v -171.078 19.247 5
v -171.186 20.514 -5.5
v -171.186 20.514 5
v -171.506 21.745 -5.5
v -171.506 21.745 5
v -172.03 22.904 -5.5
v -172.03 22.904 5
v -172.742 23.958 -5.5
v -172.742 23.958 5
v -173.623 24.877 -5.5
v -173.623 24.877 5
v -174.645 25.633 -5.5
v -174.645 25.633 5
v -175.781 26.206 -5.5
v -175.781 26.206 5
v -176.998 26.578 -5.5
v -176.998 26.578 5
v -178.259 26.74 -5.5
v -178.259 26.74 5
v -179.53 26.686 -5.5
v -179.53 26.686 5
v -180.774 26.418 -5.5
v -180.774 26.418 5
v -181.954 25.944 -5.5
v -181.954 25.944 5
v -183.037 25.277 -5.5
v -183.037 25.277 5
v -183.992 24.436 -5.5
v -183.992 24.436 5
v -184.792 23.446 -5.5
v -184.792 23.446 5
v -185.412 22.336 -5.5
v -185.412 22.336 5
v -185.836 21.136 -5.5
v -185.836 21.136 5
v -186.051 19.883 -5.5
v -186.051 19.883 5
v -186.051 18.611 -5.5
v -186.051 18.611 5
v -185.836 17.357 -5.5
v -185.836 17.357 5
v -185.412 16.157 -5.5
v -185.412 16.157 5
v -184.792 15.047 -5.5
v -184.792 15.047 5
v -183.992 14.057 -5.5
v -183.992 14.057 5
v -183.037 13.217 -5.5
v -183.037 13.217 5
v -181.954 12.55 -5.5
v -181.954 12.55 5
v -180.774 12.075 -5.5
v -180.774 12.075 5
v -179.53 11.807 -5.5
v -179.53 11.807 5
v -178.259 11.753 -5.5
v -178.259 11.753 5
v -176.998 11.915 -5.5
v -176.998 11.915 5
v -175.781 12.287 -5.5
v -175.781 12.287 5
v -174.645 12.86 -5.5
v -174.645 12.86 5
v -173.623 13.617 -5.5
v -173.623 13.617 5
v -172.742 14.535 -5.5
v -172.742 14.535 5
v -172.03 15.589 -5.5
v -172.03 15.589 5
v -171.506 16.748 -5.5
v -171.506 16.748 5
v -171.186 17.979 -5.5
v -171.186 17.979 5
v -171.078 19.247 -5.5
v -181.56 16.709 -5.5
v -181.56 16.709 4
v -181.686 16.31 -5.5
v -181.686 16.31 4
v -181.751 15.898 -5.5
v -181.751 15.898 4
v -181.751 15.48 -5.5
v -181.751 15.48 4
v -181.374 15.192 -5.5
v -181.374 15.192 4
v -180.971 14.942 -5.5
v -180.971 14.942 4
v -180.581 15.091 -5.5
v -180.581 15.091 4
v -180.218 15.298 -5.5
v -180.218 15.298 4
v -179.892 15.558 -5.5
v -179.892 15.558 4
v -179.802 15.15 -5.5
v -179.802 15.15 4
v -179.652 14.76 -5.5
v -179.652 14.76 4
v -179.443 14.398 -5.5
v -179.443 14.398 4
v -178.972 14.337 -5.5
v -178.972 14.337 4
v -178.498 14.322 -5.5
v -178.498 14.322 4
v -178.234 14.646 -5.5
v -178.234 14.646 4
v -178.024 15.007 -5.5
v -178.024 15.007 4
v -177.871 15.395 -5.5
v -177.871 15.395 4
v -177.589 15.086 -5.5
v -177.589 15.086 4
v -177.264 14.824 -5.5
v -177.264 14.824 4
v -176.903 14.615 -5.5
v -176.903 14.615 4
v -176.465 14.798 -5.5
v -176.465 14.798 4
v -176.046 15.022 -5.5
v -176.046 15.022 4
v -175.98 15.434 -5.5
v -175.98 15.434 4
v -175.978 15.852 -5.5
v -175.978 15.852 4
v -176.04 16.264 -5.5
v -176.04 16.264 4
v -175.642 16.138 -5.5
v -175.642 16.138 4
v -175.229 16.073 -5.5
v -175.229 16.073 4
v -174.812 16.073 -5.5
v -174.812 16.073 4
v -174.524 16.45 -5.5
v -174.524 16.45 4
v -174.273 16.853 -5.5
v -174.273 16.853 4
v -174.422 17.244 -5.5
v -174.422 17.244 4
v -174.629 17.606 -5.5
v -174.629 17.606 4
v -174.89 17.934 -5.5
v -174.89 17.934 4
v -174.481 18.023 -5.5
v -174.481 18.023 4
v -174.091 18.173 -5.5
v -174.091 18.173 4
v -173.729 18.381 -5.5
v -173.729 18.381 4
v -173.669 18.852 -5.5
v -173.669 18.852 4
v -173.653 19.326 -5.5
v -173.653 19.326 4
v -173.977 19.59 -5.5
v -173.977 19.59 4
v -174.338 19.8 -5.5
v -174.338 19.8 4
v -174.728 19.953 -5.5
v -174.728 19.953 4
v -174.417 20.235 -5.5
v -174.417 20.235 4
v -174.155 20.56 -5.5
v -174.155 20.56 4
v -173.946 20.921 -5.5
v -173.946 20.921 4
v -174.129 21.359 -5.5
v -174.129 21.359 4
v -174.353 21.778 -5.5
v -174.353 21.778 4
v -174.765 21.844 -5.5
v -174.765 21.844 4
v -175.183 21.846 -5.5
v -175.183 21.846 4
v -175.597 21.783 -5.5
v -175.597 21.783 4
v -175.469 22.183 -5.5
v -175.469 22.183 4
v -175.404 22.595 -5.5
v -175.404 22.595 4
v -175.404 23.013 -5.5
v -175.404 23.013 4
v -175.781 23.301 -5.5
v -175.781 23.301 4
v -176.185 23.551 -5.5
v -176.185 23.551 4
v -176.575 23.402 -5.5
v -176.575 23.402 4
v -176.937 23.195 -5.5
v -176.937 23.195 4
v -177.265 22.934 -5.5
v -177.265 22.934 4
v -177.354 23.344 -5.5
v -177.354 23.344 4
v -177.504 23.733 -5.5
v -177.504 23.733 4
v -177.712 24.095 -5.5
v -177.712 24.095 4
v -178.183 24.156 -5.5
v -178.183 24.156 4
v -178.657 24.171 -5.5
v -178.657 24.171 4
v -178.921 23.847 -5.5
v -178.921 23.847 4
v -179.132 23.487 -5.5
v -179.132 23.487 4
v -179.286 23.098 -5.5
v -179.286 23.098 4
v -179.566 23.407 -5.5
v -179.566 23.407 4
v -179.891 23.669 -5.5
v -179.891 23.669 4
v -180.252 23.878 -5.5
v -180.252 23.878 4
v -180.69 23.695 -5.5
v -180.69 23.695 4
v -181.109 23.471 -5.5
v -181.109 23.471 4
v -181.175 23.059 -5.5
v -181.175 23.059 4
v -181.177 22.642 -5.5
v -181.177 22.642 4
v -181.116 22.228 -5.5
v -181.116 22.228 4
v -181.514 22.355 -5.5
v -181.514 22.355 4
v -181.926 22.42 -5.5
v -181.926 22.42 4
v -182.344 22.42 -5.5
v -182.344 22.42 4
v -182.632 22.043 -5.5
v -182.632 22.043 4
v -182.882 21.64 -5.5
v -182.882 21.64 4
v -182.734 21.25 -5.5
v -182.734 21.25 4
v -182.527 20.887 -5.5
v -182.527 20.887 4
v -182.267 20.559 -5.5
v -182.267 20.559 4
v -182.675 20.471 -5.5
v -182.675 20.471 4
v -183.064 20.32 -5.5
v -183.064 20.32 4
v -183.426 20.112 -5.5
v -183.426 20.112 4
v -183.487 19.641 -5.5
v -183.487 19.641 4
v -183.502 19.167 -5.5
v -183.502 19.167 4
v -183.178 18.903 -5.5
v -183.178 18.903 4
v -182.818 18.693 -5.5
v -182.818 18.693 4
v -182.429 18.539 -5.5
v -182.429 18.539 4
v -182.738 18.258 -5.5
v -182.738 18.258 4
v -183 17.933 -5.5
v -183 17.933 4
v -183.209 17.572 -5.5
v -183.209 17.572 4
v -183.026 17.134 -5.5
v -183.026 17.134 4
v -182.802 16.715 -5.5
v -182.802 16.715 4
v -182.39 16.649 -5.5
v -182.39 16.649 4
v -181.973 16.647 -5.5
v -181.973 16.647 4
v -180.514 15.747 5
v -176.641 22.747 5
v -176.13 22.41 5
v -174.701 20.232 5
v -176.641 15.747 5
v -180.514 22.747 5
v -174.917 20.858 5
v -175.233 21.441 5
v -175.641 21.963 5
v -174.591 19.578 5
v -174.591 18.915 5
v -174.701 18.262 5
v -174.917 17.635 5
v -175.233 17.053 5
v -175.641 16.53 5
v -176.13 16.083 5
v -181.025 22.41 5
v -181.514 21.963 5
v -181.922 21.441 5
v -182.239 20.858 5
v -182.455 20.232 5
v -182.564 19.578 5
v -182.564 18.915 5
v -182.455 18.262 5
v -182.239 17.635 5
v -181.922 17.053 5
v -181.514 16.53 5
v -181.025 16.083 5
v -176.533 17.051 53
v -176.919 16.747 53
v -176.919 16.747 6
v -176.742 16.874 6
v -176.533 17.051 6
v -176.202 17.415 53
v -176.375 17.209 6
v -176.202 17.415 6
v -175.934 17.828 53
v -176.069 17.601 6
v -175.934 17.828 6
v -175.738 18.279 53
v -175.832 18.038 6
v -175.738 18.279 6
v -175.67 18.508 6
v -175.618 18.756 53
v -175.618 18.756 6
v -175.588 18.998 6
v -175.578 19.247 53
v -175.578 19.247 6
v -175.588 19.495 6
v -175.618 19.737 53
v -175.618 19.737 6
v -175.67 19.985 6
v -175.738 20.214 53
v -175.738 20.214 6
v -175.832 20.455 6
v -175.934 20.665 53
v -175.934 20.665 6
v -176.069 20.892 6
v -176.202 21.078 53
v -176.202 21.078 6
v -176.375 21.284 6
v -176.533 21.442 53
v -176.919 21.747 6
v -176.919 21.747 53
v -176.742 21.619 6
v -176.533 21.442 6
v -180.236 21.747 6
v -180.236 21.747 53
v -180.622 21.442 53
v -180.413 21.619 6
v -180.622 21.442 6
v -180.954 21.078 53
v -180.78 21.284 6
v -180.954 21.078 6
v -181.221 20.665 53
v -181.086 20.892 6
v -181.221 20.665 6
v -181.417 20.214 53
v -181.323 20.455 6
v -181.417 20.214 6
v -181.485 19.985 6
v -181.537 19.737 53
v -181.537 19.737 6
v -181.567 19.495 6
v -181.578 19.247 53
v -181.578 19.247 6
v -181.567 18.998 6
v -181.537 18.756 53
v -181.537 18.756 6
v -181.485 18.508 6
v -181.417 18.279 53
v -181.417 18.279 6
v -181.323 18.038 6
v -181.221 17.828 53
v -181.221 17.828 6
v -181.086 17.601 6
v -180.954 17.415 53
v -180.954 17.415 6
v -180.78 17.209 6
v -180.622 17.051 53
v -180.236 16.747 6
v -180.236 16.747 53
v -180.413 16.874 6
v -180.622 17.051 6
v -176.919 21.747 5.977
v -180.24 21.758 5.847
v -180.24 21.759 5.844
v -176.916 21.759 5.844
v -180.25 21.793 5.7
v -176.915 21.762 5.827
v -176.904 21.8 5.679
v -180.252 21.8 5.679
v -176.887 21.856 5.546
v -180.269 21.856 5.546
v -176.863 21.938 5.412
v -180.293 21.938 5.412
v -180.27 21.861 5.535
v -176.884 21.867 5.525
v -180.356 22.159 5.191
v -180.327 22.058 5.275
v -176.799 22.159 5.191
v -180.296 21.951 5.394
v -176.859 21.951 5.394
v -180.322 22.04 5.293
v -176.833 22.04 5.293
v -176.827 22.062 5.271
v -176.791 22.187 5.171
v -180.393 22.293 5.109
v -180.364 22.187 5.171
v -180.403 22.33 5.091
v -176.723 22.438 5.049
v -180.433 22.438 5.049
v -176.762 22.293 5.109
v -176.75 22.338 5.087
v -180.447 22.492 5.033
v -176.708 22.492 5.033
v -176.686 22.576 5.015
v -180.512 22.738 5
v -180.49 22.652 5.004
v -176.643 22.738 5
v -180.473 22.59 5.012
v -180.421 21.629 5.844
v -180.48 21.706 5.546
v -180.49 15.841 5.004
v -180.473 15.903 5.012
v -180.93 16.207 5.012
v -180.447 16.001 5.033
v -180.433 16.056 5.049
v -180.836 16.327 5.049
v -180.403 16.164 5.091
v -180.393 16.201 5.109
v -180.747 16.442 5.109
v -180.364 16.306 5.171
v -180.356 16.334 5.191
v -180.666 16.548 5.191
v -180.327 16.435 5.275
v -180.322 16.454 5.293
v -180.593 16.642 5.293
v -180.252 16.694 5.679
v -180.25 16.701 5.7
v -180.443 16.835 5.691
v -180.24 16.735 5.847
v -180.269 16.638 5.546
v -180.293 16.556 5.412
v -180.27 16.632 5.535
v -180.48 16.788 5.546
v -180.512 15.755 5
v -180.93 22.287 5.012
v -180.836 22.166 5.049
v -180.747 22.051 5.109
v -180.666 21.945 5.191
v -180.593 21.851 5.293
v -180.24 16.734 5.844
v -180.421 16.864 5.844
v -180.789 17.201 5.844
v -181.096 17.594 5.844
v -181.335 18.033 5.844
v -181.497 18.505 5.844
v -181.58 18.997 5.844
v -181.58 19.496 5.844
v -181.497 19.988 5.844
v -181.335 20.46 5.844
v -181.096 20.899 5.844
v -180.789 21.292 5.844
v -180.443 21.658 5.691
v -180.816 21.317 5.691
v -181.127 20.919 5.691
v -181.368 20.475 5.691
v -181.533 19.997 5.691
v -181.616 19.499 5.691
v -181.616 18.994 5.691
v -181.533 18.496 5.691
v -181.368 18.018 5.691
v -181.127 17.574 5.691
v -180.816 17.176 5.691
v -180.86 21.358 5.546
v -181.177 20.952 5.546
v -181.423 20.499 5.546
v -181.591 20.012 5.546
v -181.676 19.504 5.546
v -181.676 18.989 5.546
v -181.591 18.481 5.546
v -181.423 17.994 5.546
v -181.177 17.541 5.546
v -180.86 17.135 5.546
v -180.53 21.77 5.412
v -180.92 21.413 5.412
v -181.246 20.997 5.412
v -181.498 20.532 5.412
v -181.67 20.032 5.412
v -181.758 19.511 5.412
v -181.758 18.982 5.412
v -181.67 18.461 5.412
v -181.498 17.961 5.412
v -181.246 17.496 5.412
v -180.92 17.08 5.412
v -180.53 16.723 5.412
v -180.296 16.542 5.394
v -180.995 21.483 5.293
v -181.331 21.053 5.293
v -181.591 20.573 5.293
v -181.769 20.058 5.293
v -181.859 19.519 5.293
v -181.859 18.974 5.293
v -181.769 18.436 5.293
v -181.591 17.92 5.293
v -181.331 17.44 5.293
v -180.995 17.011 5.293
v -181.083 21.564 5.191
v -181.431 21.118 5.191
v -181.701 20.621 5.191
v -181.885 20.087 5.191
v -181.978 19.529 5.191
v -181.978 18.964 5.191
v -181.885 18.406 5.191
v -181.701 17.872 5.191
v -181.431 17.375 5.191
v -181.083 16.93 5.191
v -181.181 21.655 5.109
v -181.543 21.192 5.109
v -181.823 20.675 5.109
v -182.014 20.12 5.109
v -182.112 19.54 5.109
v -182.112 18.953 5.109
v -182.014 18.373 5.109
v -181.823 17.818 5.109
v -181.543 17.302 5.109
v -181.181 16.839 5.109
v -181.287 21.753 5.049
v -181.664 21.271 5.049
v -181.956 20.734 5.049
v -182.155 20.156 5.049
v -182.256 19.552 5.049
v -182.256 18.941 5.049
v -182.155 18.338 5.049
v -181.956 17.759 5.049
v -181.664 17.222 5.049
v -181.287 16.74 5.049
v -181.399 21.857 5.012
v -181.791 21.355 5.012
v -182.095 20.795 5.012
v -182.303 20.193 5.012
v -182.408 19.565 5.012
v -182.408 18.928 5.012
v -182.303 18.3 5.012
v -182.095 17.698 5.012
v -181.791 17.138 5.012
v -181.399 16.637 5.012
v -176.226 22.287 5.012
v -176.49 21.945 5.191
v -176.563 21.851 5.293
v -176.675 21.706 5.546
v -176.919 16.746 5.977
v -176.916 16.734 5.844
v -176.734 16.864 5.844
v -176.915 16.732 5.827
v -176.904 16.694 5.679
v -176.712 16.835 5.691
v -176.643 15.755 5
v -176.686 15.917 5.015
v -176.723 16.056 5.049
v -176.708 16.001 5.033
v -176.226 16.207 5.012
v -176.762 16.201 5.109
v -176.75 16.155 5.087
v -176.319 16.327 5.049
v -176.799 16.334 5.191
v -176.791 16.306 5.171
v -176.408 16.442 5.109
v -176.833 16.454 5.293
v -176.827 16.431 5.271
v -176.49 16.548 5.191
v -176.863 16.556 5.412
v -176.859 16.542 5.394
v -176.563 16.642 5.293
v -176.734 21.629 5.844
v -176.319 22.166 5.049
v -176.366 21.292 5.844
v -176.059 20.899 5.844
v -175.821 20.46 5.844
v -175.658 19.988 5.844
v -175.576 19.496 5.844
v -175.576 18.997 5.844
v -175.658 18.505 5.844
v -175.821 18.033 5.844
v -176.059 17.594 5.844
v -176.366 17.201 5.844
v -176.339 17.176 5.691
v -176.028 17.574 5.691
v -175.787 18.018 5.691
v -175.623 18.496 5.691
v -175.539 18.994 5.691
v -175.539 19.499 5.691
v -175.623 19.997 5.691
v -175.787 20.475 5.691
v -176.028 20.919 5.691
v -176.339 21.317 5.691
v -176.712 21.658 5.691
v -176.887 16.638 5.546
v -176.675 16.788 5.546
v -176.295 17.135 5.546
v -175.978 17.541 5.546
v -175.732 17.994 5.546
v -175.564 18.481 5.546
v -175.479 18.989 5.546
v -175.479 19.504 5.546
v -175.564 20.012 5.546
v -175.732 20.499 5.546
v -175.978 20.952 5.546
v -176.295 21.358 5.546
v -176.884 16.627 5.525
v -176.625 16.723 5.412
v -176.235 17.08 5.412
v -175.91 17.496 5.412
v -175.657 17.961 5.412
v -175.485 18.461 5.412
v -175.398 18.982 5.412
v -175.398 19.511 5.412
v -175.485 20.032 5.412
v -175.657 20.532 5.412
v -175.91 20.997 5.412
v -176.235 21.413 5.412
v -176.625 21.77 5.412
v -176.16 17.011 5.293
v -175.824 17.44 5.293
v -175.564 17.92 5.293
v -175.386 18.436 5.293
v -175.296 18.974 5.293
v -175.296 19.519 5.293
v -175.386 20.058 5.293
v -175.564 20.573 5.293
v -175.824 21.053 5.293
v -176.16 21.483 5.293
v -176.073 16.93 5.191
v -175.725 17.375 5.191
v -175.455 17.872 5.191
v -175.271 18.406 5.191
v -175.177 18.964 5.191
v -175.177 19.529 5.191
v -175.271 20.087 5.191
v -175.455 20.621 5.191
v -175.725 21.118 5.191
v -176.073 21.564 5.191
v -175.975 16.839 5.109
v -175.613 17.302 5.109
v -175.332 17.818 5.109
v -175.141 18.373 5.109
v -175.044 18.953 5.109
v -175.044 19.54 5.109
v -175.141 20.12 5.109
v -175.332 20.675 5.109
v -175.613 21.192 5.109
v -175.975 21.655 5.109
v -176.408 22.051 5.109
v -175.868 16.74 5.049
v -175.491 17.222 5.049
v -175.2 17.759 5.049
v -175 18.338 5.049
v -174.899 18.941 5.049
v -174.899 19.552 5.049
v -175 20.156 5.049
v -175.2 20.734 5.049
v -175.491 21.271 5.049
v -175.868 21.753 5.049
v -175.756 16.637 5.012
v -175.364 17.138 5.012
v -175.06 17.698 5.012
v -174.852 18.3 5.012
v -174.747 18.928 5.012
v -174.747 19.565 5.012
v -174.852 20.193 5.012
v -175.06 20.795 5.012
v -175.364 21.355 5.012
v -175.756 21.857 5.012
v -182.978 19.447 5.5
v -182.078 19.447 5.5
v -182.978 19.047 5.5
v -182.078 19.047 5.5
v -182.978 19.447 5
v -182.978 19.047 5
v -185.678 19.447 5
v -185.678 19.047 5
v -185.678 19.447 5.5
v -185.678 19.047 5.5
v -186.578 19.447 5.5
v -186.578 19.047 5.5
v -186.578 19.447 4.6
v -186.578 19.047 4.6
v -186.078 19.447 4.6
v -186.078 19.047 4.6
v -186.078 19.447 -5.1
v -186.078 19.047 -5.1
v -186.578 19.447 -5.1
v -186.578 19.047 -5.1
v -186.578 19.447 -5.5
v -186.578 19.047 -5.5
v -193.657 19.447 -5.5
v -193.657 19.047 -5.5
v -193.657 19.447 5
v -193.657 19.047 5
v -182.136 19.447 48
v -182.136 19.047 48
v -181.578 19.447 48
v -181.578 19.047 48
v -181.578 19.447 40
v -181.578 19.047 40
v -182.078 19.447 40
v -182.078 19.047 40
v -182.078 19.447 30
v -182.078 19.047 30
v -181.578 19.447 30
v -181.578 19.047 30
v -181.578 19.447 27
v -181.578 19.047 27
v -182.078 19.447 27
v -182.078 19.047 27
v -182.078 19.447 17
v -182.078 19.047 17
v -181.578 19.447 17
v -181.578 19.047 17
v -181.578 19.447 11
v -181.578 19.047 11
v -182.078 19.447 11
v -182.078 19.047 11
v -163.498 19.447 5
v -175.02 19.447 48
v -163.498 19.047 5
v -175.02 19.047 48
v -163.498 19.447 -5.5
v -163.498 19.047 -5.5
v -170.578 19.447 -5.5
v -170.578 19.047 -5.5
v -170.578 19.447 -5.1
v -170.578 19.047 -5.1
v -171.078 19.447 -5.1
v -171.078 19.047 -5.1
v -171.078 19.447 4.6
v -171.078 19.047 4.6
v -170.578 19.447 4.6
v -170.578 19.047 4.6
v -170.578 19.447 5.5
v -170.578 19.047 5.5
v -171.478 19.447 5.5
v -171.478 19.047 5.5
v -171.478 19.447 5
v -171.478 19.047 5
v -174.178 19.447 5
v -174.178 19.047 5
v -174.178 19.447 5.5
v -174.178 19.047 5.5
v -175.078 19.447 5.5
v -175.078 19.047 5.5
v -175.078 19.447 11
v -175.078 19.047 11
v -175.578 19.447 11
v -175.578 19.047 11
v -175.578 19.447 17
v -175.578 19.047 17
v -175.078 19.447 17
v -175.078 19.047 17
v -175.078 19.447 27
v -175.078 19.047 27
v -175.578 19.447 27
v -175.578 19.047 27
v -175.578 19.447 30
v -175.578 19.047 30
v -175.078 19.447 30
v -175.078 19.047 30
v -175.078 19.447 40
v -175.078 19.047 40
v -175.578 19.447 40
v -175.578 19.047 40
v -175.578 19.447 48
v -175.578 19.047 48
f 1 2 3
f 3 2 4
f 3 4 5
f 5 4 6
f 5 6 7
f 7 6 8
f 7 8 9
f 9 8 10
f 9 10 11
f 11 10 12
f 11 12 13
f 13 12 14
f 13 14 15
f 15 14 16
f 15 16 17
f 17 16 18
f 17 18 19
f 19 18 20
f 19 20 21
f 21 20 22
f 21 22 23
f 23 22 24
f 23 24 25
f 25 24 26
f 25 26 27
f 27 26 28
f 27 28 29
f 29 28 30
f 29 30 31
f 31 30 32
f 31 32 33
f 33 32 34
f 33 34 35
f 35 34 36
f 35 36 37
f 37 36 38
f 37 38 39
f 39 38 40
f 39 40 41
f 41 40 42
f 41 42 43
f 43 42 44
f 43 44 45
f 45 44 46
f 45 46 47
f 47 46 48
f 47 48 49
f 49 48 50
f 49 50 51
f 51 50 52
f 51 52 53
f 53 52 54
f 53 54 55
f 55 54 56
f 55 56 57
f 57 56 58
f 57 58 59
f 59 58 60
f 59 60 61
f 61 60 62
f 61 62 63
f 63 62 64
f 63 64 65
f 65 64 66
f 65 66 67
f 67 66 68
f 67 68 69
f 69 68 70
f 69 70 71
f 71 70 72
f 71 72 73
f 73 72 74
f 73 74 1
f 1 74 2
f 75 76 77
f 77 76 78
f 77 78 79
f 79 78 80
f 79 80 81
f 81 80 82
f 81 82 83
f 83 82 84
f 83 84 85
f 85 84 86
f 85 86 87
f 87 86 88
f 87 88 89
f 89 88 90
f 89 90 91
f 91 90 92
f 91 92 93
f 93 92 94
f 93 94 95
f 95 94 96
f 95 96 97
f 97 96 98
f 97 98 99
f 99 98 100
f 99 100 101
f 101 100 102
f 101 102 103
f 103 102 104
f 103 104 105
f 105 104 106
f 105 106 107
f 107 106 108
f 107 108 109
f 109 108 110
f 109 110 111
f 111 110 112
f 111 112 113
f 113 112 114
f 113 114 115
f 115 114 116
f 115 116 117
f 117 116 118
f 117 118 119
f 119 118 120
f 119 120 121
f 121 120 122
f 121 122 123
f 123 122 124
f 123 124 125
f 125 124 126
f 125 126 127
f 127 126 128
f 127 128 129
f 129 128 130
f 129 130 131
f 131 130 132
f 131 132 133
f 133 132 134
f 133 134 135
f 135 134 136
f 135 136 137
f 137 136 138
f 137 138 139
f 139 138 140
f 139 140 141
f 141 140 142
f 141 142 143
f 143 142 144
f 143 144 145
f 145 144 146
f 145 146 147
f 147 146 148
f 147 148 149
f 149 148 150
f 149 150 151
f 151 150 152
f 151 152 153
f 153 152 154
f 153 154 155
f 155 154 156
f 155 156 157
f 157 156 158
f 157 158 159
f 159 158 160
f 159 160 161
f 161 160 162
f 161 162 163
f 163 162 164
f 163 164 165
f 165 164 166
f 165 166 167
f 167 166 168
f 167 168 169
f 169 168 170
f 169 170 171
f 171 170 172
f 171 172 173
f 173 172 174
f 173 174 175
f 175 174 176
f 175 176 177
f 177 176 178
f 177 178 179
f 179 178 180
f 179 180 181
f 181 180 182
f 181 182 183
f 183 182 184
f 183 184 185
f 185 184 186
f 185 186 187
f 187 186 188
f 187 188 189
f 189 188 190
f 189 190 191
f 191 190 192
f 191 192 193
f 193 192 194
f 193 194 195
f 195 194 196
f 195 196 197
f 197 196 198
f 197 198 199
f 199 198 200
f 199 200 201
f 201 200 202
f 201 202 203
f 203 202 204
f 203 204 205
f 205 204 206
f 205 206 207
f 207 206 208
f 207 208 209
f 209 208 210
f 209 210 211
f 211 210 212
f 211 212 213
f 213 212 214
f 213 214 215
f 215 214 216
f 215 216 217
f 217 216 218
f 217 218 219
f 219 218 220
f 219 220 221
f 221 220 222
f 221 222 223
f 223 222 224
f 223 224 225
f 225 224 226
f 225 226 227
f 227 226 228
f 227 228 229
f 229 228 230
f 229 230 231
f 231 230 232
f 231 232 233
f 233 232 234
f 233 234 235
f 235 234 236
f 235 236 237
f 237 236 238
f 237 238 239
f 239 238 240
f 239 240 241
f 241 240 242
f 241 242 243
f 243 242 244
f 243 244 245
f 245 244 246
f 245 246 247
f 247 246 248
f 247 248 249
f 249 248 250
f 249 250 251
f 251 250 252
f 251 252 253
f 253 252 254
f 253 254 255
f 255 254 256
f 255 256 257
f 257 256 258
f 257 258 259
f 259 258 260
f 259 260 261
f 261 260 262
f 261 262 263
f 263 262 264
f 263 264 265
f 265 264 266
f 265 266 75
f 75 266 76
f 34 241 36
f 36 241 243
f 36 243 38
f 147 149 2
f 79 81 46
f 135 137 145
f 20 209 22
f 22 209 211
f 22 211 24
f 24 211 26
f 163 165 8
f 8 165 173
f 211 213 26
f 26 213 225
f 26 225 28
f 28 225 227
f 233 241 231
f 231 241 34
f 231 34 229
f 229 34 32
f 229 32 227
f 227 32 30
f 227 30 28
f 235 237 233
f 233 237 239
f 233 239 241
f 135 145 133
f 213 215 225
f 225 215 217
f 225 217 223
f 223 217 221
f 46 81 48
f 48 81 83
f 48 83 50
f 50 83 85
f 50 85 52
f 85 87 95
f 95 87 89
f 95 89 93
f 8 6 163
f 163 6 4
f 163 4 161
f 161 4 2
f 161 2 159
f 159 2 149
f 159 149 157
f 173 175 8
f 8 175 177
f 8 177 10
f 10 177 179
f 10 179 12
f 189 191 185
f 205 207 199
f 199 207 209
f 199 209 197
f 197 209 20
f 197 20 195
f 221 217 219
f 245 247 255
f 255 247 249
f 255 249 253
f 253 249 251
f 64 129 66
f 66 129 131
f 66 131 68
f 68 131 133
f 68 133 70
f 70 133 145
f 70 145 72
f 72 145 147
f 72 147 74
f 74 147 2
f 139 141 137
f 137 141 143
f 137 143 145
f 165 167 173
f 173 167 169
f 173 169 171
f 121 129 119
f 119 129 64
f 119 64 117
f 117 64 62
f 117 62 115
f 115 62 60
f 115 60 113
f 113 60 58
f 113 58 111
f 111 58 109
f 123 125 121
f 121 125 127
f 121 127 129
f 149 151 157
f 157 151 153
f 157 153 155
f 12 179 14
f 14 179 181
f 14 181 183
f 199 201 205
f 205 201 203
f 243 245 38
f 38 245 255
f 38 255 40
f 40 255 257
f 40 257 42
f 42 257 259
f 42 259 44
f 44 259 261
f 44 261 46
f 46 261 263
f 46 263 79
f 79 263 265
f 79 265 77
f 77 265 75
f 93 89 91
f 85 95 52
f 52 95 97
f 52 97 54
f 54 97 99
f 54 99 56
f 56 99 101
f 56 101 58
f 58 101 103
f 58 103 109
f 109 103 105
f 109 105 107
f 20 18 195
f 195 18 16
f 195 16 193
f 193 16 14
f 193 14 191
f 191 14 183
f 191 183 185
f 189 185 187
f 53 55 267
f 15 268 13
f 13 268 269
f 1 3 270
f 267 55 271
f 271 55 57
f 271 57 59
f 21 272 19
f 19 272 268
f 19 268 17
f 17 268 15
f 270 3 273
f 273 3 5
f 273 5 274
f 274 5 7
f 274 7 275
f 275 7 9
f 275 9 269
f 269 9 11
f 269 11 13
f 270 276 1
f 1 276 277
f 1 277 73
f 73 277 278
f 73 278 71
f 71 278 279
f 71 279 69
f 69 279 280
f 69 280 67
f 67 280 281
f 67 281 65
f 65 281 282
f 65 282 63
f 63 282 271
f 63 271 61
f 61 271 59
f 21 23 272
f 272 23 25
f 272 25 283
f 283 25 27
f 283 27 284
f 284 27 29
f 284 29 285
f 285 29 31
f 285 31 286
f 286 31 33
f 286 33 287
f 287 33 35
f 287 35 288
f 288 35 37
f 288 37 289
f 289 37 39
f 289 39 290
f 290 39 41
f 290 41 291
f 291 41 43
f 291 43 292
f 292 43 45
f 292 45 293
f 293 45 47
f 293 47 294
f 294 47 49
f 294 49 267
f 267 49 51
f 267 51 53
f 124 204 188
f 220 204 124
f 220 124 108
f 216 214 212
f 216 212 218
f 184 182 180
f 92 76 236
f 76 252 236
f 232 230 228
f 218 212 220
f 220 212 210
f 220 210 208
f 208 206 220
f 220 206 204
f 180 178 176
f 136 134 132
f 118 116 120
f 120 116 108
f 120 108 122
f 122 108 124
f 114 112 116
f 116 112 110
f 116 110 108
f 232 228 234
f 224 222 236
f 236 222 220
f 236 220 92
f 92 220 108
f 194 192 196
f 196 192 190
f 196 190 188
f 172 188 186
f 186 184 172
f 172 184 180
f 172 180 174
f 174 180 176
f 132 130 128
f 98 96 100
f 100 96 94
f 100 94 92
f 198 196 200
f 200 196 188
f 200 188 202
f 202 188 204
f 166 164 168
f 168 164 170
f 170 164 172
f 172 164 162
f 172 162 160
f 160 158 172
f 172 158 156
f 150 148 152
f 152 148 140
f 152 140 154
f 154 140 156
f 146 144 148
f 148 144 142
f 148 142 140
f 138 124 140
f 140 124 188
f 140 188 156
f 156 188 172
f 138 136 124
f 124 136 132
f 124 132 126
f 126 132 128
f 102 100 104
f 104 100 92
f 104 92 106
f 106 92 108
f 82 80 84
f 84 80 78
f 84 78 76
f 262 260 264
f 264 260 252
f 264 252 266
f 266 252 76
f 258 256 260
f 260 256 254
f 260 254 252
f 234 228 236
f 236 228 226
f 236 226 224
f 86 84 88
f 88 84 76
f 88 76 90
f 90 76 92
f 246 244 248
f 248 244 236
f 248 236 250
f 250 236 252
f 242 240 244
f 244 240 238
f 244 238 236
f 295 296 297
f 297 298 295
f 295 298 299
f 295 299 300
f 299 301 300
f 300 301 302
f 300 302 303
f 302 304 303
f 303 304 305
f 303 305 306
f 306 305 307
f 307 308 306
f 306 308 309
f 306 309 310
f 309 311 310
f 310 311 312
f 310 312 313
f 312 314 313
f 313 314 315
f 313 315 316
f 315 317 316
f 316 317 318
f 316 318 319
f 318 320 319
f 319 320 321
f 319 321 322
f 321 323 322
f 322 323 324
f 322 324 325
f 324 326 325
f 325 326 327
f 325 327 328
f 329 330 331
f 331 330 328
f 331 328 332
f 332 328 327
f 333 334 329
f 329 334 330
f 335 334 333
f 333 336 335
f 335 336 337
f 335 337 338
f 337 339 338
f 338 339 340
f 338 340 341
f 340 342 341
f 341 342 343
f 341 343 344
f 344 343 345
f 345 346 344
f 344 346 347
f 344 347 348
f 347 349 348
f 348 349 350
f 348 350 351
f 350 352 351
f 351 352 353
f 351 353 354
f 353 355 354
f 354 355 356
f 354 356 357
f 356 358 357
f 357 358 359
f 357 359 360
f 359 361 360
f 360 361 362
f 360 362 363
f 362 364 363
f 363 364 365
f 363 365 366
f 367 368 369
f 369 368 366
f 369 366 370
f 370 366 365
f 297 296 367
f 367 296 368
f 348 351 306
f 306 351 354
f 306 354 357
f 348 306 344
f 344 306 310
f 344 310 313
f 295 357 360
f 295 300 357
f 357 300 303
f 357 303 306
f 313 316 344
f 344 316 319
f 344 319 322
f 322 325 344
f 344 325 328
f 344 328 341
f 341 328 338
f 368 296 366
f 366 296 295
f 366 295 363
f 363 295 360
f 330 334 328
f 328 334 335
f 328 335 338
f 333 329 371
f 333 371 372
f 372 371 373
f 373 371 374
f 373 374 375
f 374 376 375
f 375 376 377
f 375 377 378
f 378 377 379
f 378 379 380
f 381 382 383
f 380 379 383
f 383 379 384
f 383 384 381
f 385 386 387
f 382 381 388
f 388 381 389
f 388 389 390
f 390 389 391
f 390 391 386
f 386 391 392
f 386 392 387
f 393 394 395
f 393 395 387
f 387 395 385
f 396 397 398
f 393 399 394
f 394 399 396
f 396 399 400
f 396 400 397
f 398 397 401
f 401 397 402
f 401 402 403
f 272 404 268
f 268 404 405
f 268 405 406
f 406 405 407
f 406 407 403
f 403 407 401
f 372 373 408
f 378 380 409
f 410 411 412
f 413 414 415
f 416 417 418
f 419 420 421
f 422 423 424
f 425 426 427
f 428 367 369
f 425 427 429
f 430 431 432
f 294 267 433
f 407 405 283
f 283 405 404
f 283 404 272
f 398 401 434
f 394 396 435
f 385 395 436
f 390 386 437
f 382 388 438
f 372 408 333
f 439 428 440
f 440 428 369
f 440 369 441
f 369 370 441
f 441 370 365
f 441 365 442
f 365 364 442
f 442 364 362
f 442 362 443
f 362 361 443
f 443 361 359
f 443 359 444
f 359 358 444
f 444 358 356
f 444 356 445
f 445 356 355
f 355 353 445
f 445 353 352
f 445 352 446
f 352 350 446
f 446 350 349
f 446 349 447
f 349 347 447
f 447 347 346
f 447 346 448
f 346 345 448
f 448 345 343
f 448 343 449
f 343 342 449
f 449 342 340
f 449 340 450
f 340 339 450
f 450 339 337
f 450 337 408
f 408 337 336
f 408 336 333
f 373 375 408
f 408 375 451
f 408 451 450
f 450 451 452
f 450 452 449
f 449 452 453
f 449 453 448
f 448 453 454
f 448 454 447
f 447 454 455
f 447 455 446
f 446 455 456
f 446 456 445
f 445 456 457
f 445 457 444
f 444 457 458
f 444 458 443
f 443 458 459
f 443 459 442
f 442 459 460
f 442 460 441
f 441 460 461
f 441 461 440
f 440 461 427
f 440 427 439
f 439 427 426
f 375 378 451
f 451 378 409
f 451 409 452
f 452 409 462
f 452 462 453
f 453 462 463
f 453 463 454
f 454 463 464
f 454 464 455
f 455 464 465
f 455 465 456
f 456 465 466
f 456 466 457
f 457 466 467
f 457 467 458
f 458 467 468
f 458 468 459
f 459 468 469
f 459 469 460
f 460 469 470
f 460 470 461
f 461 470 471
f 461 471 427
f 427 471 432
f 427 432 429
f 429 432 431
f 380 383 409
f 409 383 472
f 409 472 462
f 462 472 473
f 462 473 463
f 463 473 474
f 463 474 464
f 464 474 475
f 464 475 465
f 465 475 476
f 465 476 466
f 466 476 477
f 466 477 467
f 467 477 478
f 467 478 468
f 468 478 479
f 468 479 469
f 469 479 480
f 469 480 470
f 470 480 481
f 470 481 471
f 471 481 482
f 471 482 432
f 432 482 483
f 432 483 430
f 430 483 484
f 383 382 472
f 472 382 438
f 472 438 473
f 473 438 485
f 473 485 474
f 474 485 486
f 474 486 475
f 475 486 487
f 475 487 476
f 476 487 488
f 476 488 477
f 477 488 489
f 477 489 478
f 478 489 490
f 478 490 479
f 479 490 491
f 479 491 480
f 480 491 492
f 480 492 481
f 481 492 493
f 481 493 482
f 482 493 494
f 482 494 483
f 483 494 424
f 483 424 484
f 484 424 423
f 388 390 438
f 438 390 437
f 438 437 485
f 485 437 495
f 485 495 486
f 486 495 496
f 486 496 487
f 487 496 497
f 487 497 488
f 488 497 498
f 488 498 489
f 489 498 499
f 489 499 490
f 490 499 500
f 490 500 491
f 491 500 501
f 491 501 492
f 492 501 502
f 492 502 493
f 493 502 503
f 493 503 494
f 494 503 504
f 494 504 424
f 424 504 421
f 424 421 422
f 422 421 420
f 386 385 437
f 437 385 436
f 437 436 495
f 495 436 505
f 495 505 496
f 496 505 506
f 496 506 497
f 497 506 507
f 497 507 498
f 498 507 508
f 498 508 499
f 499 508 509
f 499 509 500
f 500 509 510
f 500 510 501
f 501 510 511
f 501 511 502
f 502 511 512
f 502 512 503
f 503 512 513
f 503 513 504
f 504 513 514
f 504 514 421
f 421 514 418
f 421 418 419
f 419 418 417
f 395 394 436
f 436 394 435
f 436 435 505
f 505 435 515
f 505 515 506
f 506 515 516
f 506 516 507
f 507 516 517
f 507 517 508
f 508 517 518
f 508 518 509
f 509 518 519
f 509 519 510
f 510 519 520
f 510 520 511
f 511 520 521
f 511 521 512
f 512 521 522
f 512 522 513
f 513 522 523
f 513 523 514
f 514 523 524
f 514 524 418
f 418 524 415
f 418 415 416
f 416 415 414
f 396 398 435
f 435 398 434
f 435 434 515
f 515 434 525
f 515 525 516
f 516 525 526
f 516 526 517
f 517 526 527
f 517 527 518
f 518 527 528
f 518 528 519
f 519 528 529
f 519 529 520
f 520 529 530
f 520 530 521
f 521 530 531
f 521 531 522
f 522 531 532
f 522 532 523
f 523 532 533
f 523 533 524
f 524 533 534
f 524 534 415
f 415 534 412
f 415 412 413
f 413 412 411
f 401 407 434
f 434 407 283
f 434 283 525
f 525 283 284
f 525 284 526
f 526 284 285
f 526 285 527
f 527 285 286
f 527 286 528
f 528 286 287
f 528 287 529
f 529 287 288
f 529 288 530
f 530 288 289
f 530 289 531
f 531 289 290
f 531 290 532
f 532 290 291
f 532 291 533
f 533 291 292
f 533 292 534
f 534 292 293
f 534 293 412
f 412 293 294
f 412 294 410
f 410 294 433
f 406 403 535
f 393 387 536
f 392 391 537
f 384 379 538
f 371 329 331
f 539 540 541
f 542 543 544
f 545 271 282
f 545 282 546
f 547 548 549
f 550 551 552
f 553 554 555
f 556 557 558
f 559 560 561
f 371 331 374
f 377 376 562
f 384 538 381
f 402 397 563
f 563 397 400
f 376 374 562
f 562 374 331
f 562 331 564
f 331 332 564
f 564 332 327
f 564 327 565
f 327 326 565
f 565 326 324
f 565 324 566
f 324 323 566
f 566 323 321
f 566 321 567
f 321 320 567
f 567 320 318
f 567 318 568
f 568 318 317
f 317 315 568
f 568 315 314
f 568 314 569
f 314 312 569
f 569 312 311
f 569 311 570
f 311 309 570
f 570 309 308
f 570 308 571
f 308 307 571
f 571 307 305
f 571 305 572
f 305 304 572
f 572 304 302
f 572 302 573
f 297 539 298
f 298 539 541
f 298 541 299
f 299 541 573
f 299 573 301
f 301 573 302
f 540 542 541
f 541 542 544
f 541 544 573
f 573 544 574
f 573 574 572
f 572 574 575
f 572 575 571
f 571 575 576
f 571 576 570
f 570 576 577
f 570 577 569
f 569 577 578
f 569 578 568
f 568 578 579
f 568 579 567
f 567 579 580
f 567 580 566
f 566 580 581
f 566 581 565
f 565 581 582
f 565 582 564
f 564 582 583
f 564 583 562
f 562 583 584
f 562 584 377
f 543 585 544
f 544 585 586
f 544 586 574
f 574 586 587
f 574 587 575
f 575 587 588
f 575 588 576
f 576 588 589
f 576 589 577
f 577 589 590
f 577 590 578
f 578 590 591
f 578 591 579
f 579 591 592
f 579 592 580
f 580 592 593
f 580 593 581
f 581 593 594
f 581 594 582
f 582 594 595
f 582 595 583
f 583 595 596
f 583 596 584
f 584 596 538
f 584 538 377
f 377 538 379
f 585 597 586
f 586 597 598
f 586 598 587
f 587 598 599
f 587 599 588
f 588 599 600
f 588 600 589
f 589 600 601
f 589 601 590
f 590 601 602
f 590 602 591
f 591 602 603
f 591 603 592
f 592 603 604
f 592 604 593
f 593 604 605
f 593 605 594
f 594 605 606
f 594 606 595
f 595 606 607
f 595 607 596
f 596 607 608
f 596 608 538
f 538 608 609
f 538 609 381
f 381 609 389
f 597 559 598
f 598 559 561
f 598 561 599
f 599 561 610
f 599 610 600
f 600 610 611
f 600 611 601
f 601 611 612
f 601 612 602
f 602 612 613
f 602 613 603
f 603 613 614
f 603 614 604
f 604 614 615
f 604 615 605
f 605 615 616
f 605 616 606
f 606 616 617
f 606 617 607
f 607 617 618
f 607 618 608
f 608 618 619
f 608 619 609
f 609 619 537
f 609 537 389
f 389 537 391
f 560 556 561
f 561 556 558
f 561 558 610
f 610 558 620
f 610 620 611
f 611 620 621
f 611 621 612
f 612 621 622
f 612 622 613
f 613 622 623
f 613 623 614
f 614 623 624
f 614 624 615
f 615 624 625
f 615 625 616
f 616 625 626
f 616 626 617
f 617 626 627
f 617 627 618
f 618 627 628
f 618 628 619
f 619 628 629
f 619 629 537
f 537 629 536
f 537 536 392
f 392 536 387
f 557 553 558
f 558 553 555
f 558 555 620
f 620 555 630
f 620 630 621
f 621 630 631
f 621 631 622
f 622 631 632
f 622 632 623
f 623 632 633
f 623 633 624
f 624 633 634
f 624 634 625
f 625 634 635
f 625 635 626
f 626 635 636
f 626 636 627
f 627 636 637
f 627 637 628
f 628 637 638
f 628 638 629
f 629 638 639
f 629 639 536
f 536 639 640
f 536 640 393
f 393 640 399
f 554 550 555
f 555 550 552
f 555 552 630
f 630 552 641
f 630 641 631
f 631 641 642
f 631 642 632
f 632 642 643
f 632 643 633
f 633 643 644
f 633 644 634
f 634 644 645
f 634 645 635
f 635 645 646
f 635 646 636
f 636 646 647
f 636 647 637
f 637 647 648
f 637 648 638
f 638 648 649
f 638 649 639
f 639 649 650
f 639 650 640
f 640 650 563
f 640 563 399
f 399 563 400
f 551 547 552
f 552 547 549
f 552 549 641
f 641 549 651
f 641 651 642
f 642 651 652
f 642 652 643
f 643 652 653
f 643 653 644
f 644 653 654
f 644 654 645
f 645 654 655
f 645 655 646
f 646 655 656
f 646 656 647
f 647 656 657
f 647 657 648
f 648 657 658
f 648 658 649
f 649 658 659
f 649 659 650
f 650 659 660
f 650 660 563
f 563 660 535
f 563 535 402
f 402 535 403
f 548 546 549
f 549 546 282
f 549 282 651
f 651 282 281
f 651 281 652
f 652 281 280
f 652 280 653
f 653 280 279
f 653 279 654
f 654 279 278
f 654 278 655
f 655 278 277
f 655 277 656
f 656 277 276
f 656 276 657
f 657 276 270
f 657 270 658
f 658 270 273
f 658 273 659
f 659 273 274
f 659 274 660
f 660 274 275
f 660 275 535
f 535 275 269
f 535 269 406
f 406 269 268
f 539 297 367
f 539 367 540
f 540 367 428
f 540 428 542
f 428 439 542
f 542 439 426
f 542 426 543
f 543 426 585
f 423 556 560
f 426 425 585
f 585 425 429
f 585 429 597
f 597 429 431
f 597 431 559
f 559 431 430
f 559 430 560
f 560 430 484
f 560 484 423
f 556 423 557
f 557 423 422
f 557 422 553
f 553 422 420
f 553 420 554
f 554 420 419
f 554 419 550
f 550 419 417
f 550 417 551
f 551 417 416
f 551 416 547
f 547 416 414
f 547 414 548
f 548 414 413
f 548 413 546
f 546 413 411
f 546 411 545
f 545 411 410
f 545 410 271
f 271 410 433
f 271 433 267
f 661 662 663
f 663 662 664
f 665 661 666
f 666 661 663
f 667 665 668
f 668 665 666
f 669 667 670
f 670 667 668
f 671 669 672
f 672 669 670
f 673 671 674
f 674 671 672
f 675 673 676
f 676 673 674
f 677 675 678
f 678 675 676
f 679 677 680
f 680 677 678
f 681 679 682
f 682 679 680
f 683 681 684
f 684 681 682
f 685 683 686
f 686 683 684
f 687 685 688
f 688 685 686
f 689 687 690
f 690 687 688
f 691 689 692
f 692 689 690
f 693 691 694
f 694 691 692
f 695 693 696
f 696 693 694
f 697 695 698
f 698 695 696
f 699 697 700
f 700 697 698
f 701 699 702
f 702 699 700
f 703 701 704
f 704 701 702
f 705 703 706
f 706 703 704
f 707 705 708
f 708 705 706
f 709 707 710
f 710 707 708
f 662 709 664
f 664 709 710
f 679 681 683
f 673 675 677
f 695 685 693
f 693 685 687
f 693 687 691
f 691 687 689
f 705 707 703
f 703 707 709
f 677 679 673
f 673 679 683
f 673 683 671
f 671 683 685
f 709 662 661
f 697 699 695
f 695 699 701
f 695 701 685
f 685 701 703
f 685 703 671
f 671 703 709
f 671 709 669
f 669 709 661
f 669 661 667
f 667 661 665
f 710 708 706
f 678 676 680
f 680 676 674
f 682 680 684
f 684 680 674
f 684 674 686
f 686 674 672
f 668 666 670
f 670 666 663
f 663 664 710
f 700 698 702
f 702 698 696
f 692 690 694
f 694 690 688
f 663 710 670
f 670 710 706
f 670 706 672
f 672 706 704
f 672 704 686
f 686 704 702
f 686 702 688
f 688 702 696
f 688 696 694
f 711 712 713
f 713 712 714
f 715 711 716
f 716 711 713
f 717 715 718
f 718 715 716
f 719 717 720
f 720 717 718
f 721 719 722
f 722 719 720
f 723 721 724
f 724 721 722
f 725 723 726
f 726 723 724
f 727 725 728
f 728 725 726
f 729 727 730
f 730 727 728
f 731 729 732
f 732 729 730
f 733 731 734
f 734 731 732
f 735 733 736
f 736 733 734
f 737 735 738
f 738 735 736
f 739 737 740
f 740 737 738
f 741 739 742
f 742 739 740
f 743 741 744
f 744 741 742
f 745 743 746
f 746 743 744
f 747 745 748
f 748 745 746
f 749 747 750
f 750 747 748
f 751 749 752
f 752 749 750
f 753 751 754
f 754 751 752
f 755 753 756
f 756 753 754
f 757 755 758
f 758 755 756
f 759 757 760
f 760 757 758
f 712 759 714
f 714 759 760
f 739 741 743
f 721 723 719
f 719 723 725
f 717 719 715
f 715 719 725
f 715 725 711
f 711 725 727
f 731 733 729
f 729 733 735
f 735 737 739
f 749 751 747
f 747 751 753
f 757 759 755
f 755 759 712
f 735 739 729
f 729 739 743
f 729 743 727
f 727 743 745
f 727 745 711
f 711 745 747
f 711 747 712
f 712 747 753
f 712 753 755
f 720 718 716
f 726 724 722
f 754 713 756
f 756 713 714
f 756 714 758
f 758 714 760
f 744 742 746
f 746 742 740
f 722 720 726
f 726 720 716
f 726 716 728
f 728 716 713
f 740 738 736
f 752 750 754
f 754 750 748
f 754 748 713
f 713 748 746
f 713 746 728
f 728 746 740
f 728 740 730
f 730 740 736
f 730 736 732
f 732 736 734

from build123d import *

# Parameters (mm, degrees)
SKETCH2_R                = 7.5
BOSS_EXTRUDE1_DEPTH      = 4
BOSS_EXTRUDE1_DEPTH_BACK = 5.5
SKETCH4_R                = 7.5
BOSS_EXTRUDE2_DEPTH      = 1
BOSS_EXTRUDE3_DEPTH      = 48
FILLET1_R                = 1
BOSS_EXTRUDE6_DEPTH      = 0.2
BOSS_EXTRUDE6_2_DEPTH    = 0.2


with BuildPart() as part:
    # Sketch2 → Boss-Extrude1 (new, two sides)
    with BuildSketch(Plane.XY) as boss_extrude1_sk:
        with Locations((-178.577921964, 19.246491703)):
            Circle(SKETCH2_R)
        with BuildLine():
            ThreePointArc((-181.558337123, 16.709622023), (-181.558678585, 16.708789517), (-181.559019214, 16.70795667))
            ThreePointArc((-181.559019214, 16.70795667), (-181.726852484, 16.105372267), (-181.751518169, 15.480338211))
            ThreePointArc((-181.751518169, 15.480338211), (-181.374286139, 15.192361414), (-180.971087428, 14.942030754))
            ThreePointArc((-180.971087428, 14.942030754), (-180.395580689, 15.187118416), (-179.891916803, 15.558061347))
            ThreePointArc((-179.891916803, 15.558061347), (-179.891259277, 15.558675612), (-179.890602365, 15.559290534))
            ThreePointArc((-179.890602365, 15.559290534), (-179.890481827, 15.558398832), (-179.890360397, 15.557507251))
            ThreePointArc((-179.890360397, 15.557507251), (-179.734416071, 14.951737216), (-179.443260152, 14.398109002))
            ThreePointArc((-179.443260152, 14.398109002), (-178.972579233, 14.337329795), (-178.498233577, 14.322136439))
            ThreePointArc((-178.498233577, 14.322136439), (-178.122373952, 14.82214195), (-177.871659697, 15.395219895))
            ThreePointArc((-177.871659697, 15.395219895), (-177.871397395, 15.396080627), (-177.871135954, 15.396941621))
            ThreePointArc((-177.871135954, 15.396941621), (-177.870585714, 15.396229653), (-177.870034762, 15.395518236))
            ThreePointArc((-177.870034762, 15.395518236), (-177.432097996, 14.94887816), (-176.903135467, 14.615000022))
            ThreePointArc((-176.903135467, 14.615000022), (-176.465124231, 14.797704144), (-176.046732165, 15.021719141))
            ThreePointArc((-176.046732165, 15.021719141), (-175.971230936, 15.642666427), (-176.040644995, 16.264323613))
            ThreePointArc((-176.040644995, 16.264323613), (-176.040848201, 16.26520018), (-176.041052283, 16.266076544))
            ThreePointArc((-176.041052283, 16.266076544), (-176.040219777, 16.265735082), (-176.039386931, 16.265394452))
            ThreePointArc((-176.039386931, 16.265394452), (-175.436802528, 16.097561183), (-174.811768471, 16.072895498))
            ThreePointArc((-174.811768471, 16.072895498), (-174.523791675, 16.450127528), (-174.273461015, 16.853326238))
            ThreePointArc((-174.273461015, 16.853326238), (-174.518548677, 17.428832977), (-174.889491607, 17.932496864))
            ThreePointArc((-174.889491607, 17.932496864), (-174.890105873, 17.93315439), (-174.890720795, 17.933811301))
            ThreePointArc((-174.890720795, 17.933811301), (-174.889829093, 17.93393184), (-174.888937511, 17.934053269))
            ThreePointArc((-174.888937511, 17.934053269), (-174.283167476, 18.089997596), (-173.729539262, 18.381153514))
            ThreePointArc((-173.729539262, 18.381153514), (-173.668760056, 18.851834433), (-173.6535667, 19.326180089))
            ThreePointArc((-173.6535667, 19.326180089), (-174.153572211, 19.702039715), (-174.726650155, 19.95275397))
            ThreePointArc((-174.726650155, 19.95275397), (-174.727510888, 19.953016271), (-174.728371882, 19.953277712))
            ThreePointArc((-174.728371882, 19.953277712), (-174.727659914, 19.953827953), (-174.726948497, 19.954378905))
            ThreePointArc((-174.726948497, 19.954378905), (-174.280308421, 20.39231567), (-173.946430283, 20.921278199))
            ThreePointArc((-173.946430283, 20.921278199), (-174.129134405, 21.359289436), (-174.353149401, 21.777681502))
            ThreePointArc((-174.353149401, 21.777681502), (-174.974096688, 21.85318273), (-175.595753874, 21.783768672))
            ThreePointArc((-175.595753874, 21.783768672), (-175.596630441, 21.783565466), (-175.597506804, 21.783361383))
            ThreePointArc((-175.597506804, 21.783361383), (-175.597165342, 21.784193889), (-175.596824713, 21.785026736))
            ThreePointArc((-175.596824713, 21.785026736), (-175.428991444, 22.387611138), (-175.404325759, 23.012645195))
            ThreePointArc((-175.404325759, 23.012645195), (-175.781557788, 23.300621992), (-176.184756499, 23.550952652))
            ThreePointArc((-176.184756499, 23.550952652), (-176.760263238, 23.30586499), (-177.263927124, 22.934922059))
            ThreePointArc((-177.263927124, 22.934922059), (-177.26458465, 22.934307794), (-177.265241562, 22.933692872))
            ThreePointArc((-177.265241562, 22.933692872), (-177.2653621, 22.934584574), (-177.26548353, 22.935476155))
            ThreePointArc((-177.26548353, 22.935476155), (-177.421427856, 23.54124619), (-177.712583775, 24.094874404))
            ThreePointArc((-177.712583775, 24.094874404), (-178.183264694, 24.155653611), (-178.65761035, 24.170846966))
            ThreePointArc((-178.65761035, 24.170846966), (-179.033469975, 23.670841456), (-179.28418423, 23.097763511))
            ThreePointArc((-179.28418423, 23.097763511), (-179.284446532, 23.096902779), (-179.284707973, 23.096041785))
            ThreePointArc((-179.284707973, 23.096041785), (-179.285258213, 23.096753752), (-179.285809165, 23.097465169))
            ThreePointArc((-179.285809165, 23.097465169), (-179.723745931, 23.544105246), (-180.25270846, 23.877983384))
            ThreePointArc((-180.25270846, 23.877983384), (-180.690719696, 23.695279261), (-181.109111762, 23.471264265))
            ThreePointArc((-181.109111762, 23.471264265), (-181.184612991, 22.850316978), (-181.115198932, 22.228659792))
            ThreePointArc((-181.115198932, 22.228659792), (-181.114995726, 22.227783225), (-181.114791644, 22.226906862))
            ThreePointArc((-181.114791644, 22.226906862), (-181.11562415, 22.227248324), (-181.116456997, 22.227588953))
            ThreePointArc((-181.116456997, 22.227588953), (-181.719041399, 22.395422223), (-182.344075456, 22.420087908))
            ThreePointArc((-182.344075456, 22.420087908), (-182.632052252, 22.042855878), (-182.882382912, 21.639657168))
            ThreePointArc((-182.882382912, 21.639657168), (-182.637295251, 21.064150429), (-182.26635232, 20.560486542))
            ThreePointArc((-182.26635232, 20.560486542), (-182.265738055, 20.559829016), (-182.265123132, 20.559172105))
            ThreePointArc((-182.265123132, 20.559172105), (-182.266014835, 20.559051566), (-182.266906416, 20.558930136))
            ThreePointArc((-182.266906416, 20.558930136), (-182.872676451, 20.40298581), (-183.426304665, 20.111829892))
            ThreePointArc((-183.426304665, 20.111829892), (-183.487083872, 19.641148972), (-183.502277227, 19.166803316))
            ThreePointArc((-183.502277227, 19.166803316), (-183.002271717, 18.790943691), (-182.429193772, 18.540229436))
            ThreePointArc((-182.429193772, 18.540229436), (-182.42833304, 18.539967134), (-182.427472045, 18.539705693))
            ThreePointArc((-182.427472045, 18.539705693), (-182.428184013, 18.539155453), (-182.42889543, 18.538604501))
            ThreePointArc((-182.42889543, 18.538604501), (-182.875535506, 18.100667735), (-183.209413645, 17.571705206))
            ThreePointArc((-183.209413645, 17.571705206), (-183.026709522, 17.13369397), (-182.802694526, 16.715301904))
            ThreePointArc((-182.802694526, 16.715301904), (-182.181747239, 16.639800676), (-181.560090053, 16.709214734))
            ThreePointArc((-181.560090053, 16.709214734), (-181.559213486, 16.70941794), (-181.558337123, 16.709622023))
        make_face(mode=Mode.SUBTRACT)
    extrude(amount=BOSS_EXTRUDE1_DEPTH)
    extrude(boss_extrude1_sk.sketch, amount=-BOSS_EXTRUDE1_DEPTH_BACK)

    # Sketch4 → Boss-Extrude2 (add)
    with BuildSketch(Plane.XY.offset(4)):
        with Locations((-178.577921964, 19.246491703)):
            Circle(SKETCH4_R)
    extrude(amount=BOSS_EXTRUDE2_DEPTH)

    # Sketch6 → Boss-Extrude3 (add)
    with BuildSketch(Plane.XY.offset(5)):
        with BuildLine():
            Line((-180.236234359, 21.746491703), (-176.919609568, 21.746491703))
            ThreePointArc((-176.919609568, 21.746491703), (-175.577921964, 19.246491703), (-176.919609568, 16.746491703))
            Line((-176.919609568, 16.746491703), (-180.236234359, 16.746491703))
            ThreePointArc((-180.236234359, 16.746491703), (-181.577921964, 19.246491703), (-180.236234359, 21.746491703))
        make_face()
    extrude(amount=BOSS_EXTRUDE3_DEPTH)

    # Fillet1
    fillet1_edges = [part.edges().sort_by_distance(p)[0] for p in [
        (-175.577921964, 19.246491703, 5),
        (-178.577921964, 21.746491703, 5),
        (-181.577921964, 19.246491703, 5),
        (-178.577921964, 16.746491703, 5),
    ]]
    fillet(fillet1_edges, radius=FILLET1_R)


with BuildPart() as body_2:
    # Sketch7 → Boss-Extrude6 (new, symmetric)
    with BuildSketch(Plane(origin=(0, 19.246491703, 0), x_dir=(1, 0, 0), z_dir=(0, 1, 0))):
        Polygon((-182.077921964, -5.5), (-182.077921964, -11), (-181.577921964, -11), (-181.577921964, -17), (-182.077921964, -17), (-182.077921964, -27), (-181.577921964, -27), (-181.577921964, -30), (-182.077921964, -30), (-182.077921964, -40), (-181.577921964, -40), (-181.577921964, -48), (-182.135795076, -48), (-193.65761035, -5), (-193.65761035, 5.5), (-186.577921964, 5.5), (-186.577921964, 5.1), (-186.077921964, 5.1), (-186.077921964, -4.6), (-186.577921964, -4.6), (-186.577921964, -5.5), (-185.677921964, -5.5), (-185.677921964, -5), (-182.977921964, -5), (-182.977921964, -5.5), align=None)
    extrude(amount=BOSS_EXTRUDE6_DEPTH, both=True)


with BuildPart() as body_3:
    # Sketch7 → Boss-Extrude6 2 (new, symmetric)
    with BuildSketch(Plane(origin=(0, 19.246491703, 0), x_dir=(1, 0, 0), z_dir=(0, 1, 0))):
        Polygon((-175.020048852, -48), (-175.577921964, -48), (-175.577921964, -40), (-175.077921964, -40), (-175.077921964, -30), (-175.577921964, -30), (-175.577921964, -27), (-175.077921964, -27), (-175.077921964, -17), (-175.577921964, -17), (-175.577921964, -11), (-175.077921964, -11), (-175.077921964, -5.5), (-174.177921964, -5.5), (-174.177921964, -5), (-171.477921964, -5), (-171.477921964, -5.5), (-170.577921964, -5.5), (-170.577921964, -4.6), (-171.077921964, -4.6), (-171.077921964, 5.1), (-170.577921964, 5.1), (-170.577921964, 5.5), (-163.498233577, 5.5), (-163.498233577, -5), align=None)
    extrude(amount=BOSS_EXTRUDE6_2_DEPTH, both=True)


solid = Compound([part.part, body_2.part, body_3.part])
